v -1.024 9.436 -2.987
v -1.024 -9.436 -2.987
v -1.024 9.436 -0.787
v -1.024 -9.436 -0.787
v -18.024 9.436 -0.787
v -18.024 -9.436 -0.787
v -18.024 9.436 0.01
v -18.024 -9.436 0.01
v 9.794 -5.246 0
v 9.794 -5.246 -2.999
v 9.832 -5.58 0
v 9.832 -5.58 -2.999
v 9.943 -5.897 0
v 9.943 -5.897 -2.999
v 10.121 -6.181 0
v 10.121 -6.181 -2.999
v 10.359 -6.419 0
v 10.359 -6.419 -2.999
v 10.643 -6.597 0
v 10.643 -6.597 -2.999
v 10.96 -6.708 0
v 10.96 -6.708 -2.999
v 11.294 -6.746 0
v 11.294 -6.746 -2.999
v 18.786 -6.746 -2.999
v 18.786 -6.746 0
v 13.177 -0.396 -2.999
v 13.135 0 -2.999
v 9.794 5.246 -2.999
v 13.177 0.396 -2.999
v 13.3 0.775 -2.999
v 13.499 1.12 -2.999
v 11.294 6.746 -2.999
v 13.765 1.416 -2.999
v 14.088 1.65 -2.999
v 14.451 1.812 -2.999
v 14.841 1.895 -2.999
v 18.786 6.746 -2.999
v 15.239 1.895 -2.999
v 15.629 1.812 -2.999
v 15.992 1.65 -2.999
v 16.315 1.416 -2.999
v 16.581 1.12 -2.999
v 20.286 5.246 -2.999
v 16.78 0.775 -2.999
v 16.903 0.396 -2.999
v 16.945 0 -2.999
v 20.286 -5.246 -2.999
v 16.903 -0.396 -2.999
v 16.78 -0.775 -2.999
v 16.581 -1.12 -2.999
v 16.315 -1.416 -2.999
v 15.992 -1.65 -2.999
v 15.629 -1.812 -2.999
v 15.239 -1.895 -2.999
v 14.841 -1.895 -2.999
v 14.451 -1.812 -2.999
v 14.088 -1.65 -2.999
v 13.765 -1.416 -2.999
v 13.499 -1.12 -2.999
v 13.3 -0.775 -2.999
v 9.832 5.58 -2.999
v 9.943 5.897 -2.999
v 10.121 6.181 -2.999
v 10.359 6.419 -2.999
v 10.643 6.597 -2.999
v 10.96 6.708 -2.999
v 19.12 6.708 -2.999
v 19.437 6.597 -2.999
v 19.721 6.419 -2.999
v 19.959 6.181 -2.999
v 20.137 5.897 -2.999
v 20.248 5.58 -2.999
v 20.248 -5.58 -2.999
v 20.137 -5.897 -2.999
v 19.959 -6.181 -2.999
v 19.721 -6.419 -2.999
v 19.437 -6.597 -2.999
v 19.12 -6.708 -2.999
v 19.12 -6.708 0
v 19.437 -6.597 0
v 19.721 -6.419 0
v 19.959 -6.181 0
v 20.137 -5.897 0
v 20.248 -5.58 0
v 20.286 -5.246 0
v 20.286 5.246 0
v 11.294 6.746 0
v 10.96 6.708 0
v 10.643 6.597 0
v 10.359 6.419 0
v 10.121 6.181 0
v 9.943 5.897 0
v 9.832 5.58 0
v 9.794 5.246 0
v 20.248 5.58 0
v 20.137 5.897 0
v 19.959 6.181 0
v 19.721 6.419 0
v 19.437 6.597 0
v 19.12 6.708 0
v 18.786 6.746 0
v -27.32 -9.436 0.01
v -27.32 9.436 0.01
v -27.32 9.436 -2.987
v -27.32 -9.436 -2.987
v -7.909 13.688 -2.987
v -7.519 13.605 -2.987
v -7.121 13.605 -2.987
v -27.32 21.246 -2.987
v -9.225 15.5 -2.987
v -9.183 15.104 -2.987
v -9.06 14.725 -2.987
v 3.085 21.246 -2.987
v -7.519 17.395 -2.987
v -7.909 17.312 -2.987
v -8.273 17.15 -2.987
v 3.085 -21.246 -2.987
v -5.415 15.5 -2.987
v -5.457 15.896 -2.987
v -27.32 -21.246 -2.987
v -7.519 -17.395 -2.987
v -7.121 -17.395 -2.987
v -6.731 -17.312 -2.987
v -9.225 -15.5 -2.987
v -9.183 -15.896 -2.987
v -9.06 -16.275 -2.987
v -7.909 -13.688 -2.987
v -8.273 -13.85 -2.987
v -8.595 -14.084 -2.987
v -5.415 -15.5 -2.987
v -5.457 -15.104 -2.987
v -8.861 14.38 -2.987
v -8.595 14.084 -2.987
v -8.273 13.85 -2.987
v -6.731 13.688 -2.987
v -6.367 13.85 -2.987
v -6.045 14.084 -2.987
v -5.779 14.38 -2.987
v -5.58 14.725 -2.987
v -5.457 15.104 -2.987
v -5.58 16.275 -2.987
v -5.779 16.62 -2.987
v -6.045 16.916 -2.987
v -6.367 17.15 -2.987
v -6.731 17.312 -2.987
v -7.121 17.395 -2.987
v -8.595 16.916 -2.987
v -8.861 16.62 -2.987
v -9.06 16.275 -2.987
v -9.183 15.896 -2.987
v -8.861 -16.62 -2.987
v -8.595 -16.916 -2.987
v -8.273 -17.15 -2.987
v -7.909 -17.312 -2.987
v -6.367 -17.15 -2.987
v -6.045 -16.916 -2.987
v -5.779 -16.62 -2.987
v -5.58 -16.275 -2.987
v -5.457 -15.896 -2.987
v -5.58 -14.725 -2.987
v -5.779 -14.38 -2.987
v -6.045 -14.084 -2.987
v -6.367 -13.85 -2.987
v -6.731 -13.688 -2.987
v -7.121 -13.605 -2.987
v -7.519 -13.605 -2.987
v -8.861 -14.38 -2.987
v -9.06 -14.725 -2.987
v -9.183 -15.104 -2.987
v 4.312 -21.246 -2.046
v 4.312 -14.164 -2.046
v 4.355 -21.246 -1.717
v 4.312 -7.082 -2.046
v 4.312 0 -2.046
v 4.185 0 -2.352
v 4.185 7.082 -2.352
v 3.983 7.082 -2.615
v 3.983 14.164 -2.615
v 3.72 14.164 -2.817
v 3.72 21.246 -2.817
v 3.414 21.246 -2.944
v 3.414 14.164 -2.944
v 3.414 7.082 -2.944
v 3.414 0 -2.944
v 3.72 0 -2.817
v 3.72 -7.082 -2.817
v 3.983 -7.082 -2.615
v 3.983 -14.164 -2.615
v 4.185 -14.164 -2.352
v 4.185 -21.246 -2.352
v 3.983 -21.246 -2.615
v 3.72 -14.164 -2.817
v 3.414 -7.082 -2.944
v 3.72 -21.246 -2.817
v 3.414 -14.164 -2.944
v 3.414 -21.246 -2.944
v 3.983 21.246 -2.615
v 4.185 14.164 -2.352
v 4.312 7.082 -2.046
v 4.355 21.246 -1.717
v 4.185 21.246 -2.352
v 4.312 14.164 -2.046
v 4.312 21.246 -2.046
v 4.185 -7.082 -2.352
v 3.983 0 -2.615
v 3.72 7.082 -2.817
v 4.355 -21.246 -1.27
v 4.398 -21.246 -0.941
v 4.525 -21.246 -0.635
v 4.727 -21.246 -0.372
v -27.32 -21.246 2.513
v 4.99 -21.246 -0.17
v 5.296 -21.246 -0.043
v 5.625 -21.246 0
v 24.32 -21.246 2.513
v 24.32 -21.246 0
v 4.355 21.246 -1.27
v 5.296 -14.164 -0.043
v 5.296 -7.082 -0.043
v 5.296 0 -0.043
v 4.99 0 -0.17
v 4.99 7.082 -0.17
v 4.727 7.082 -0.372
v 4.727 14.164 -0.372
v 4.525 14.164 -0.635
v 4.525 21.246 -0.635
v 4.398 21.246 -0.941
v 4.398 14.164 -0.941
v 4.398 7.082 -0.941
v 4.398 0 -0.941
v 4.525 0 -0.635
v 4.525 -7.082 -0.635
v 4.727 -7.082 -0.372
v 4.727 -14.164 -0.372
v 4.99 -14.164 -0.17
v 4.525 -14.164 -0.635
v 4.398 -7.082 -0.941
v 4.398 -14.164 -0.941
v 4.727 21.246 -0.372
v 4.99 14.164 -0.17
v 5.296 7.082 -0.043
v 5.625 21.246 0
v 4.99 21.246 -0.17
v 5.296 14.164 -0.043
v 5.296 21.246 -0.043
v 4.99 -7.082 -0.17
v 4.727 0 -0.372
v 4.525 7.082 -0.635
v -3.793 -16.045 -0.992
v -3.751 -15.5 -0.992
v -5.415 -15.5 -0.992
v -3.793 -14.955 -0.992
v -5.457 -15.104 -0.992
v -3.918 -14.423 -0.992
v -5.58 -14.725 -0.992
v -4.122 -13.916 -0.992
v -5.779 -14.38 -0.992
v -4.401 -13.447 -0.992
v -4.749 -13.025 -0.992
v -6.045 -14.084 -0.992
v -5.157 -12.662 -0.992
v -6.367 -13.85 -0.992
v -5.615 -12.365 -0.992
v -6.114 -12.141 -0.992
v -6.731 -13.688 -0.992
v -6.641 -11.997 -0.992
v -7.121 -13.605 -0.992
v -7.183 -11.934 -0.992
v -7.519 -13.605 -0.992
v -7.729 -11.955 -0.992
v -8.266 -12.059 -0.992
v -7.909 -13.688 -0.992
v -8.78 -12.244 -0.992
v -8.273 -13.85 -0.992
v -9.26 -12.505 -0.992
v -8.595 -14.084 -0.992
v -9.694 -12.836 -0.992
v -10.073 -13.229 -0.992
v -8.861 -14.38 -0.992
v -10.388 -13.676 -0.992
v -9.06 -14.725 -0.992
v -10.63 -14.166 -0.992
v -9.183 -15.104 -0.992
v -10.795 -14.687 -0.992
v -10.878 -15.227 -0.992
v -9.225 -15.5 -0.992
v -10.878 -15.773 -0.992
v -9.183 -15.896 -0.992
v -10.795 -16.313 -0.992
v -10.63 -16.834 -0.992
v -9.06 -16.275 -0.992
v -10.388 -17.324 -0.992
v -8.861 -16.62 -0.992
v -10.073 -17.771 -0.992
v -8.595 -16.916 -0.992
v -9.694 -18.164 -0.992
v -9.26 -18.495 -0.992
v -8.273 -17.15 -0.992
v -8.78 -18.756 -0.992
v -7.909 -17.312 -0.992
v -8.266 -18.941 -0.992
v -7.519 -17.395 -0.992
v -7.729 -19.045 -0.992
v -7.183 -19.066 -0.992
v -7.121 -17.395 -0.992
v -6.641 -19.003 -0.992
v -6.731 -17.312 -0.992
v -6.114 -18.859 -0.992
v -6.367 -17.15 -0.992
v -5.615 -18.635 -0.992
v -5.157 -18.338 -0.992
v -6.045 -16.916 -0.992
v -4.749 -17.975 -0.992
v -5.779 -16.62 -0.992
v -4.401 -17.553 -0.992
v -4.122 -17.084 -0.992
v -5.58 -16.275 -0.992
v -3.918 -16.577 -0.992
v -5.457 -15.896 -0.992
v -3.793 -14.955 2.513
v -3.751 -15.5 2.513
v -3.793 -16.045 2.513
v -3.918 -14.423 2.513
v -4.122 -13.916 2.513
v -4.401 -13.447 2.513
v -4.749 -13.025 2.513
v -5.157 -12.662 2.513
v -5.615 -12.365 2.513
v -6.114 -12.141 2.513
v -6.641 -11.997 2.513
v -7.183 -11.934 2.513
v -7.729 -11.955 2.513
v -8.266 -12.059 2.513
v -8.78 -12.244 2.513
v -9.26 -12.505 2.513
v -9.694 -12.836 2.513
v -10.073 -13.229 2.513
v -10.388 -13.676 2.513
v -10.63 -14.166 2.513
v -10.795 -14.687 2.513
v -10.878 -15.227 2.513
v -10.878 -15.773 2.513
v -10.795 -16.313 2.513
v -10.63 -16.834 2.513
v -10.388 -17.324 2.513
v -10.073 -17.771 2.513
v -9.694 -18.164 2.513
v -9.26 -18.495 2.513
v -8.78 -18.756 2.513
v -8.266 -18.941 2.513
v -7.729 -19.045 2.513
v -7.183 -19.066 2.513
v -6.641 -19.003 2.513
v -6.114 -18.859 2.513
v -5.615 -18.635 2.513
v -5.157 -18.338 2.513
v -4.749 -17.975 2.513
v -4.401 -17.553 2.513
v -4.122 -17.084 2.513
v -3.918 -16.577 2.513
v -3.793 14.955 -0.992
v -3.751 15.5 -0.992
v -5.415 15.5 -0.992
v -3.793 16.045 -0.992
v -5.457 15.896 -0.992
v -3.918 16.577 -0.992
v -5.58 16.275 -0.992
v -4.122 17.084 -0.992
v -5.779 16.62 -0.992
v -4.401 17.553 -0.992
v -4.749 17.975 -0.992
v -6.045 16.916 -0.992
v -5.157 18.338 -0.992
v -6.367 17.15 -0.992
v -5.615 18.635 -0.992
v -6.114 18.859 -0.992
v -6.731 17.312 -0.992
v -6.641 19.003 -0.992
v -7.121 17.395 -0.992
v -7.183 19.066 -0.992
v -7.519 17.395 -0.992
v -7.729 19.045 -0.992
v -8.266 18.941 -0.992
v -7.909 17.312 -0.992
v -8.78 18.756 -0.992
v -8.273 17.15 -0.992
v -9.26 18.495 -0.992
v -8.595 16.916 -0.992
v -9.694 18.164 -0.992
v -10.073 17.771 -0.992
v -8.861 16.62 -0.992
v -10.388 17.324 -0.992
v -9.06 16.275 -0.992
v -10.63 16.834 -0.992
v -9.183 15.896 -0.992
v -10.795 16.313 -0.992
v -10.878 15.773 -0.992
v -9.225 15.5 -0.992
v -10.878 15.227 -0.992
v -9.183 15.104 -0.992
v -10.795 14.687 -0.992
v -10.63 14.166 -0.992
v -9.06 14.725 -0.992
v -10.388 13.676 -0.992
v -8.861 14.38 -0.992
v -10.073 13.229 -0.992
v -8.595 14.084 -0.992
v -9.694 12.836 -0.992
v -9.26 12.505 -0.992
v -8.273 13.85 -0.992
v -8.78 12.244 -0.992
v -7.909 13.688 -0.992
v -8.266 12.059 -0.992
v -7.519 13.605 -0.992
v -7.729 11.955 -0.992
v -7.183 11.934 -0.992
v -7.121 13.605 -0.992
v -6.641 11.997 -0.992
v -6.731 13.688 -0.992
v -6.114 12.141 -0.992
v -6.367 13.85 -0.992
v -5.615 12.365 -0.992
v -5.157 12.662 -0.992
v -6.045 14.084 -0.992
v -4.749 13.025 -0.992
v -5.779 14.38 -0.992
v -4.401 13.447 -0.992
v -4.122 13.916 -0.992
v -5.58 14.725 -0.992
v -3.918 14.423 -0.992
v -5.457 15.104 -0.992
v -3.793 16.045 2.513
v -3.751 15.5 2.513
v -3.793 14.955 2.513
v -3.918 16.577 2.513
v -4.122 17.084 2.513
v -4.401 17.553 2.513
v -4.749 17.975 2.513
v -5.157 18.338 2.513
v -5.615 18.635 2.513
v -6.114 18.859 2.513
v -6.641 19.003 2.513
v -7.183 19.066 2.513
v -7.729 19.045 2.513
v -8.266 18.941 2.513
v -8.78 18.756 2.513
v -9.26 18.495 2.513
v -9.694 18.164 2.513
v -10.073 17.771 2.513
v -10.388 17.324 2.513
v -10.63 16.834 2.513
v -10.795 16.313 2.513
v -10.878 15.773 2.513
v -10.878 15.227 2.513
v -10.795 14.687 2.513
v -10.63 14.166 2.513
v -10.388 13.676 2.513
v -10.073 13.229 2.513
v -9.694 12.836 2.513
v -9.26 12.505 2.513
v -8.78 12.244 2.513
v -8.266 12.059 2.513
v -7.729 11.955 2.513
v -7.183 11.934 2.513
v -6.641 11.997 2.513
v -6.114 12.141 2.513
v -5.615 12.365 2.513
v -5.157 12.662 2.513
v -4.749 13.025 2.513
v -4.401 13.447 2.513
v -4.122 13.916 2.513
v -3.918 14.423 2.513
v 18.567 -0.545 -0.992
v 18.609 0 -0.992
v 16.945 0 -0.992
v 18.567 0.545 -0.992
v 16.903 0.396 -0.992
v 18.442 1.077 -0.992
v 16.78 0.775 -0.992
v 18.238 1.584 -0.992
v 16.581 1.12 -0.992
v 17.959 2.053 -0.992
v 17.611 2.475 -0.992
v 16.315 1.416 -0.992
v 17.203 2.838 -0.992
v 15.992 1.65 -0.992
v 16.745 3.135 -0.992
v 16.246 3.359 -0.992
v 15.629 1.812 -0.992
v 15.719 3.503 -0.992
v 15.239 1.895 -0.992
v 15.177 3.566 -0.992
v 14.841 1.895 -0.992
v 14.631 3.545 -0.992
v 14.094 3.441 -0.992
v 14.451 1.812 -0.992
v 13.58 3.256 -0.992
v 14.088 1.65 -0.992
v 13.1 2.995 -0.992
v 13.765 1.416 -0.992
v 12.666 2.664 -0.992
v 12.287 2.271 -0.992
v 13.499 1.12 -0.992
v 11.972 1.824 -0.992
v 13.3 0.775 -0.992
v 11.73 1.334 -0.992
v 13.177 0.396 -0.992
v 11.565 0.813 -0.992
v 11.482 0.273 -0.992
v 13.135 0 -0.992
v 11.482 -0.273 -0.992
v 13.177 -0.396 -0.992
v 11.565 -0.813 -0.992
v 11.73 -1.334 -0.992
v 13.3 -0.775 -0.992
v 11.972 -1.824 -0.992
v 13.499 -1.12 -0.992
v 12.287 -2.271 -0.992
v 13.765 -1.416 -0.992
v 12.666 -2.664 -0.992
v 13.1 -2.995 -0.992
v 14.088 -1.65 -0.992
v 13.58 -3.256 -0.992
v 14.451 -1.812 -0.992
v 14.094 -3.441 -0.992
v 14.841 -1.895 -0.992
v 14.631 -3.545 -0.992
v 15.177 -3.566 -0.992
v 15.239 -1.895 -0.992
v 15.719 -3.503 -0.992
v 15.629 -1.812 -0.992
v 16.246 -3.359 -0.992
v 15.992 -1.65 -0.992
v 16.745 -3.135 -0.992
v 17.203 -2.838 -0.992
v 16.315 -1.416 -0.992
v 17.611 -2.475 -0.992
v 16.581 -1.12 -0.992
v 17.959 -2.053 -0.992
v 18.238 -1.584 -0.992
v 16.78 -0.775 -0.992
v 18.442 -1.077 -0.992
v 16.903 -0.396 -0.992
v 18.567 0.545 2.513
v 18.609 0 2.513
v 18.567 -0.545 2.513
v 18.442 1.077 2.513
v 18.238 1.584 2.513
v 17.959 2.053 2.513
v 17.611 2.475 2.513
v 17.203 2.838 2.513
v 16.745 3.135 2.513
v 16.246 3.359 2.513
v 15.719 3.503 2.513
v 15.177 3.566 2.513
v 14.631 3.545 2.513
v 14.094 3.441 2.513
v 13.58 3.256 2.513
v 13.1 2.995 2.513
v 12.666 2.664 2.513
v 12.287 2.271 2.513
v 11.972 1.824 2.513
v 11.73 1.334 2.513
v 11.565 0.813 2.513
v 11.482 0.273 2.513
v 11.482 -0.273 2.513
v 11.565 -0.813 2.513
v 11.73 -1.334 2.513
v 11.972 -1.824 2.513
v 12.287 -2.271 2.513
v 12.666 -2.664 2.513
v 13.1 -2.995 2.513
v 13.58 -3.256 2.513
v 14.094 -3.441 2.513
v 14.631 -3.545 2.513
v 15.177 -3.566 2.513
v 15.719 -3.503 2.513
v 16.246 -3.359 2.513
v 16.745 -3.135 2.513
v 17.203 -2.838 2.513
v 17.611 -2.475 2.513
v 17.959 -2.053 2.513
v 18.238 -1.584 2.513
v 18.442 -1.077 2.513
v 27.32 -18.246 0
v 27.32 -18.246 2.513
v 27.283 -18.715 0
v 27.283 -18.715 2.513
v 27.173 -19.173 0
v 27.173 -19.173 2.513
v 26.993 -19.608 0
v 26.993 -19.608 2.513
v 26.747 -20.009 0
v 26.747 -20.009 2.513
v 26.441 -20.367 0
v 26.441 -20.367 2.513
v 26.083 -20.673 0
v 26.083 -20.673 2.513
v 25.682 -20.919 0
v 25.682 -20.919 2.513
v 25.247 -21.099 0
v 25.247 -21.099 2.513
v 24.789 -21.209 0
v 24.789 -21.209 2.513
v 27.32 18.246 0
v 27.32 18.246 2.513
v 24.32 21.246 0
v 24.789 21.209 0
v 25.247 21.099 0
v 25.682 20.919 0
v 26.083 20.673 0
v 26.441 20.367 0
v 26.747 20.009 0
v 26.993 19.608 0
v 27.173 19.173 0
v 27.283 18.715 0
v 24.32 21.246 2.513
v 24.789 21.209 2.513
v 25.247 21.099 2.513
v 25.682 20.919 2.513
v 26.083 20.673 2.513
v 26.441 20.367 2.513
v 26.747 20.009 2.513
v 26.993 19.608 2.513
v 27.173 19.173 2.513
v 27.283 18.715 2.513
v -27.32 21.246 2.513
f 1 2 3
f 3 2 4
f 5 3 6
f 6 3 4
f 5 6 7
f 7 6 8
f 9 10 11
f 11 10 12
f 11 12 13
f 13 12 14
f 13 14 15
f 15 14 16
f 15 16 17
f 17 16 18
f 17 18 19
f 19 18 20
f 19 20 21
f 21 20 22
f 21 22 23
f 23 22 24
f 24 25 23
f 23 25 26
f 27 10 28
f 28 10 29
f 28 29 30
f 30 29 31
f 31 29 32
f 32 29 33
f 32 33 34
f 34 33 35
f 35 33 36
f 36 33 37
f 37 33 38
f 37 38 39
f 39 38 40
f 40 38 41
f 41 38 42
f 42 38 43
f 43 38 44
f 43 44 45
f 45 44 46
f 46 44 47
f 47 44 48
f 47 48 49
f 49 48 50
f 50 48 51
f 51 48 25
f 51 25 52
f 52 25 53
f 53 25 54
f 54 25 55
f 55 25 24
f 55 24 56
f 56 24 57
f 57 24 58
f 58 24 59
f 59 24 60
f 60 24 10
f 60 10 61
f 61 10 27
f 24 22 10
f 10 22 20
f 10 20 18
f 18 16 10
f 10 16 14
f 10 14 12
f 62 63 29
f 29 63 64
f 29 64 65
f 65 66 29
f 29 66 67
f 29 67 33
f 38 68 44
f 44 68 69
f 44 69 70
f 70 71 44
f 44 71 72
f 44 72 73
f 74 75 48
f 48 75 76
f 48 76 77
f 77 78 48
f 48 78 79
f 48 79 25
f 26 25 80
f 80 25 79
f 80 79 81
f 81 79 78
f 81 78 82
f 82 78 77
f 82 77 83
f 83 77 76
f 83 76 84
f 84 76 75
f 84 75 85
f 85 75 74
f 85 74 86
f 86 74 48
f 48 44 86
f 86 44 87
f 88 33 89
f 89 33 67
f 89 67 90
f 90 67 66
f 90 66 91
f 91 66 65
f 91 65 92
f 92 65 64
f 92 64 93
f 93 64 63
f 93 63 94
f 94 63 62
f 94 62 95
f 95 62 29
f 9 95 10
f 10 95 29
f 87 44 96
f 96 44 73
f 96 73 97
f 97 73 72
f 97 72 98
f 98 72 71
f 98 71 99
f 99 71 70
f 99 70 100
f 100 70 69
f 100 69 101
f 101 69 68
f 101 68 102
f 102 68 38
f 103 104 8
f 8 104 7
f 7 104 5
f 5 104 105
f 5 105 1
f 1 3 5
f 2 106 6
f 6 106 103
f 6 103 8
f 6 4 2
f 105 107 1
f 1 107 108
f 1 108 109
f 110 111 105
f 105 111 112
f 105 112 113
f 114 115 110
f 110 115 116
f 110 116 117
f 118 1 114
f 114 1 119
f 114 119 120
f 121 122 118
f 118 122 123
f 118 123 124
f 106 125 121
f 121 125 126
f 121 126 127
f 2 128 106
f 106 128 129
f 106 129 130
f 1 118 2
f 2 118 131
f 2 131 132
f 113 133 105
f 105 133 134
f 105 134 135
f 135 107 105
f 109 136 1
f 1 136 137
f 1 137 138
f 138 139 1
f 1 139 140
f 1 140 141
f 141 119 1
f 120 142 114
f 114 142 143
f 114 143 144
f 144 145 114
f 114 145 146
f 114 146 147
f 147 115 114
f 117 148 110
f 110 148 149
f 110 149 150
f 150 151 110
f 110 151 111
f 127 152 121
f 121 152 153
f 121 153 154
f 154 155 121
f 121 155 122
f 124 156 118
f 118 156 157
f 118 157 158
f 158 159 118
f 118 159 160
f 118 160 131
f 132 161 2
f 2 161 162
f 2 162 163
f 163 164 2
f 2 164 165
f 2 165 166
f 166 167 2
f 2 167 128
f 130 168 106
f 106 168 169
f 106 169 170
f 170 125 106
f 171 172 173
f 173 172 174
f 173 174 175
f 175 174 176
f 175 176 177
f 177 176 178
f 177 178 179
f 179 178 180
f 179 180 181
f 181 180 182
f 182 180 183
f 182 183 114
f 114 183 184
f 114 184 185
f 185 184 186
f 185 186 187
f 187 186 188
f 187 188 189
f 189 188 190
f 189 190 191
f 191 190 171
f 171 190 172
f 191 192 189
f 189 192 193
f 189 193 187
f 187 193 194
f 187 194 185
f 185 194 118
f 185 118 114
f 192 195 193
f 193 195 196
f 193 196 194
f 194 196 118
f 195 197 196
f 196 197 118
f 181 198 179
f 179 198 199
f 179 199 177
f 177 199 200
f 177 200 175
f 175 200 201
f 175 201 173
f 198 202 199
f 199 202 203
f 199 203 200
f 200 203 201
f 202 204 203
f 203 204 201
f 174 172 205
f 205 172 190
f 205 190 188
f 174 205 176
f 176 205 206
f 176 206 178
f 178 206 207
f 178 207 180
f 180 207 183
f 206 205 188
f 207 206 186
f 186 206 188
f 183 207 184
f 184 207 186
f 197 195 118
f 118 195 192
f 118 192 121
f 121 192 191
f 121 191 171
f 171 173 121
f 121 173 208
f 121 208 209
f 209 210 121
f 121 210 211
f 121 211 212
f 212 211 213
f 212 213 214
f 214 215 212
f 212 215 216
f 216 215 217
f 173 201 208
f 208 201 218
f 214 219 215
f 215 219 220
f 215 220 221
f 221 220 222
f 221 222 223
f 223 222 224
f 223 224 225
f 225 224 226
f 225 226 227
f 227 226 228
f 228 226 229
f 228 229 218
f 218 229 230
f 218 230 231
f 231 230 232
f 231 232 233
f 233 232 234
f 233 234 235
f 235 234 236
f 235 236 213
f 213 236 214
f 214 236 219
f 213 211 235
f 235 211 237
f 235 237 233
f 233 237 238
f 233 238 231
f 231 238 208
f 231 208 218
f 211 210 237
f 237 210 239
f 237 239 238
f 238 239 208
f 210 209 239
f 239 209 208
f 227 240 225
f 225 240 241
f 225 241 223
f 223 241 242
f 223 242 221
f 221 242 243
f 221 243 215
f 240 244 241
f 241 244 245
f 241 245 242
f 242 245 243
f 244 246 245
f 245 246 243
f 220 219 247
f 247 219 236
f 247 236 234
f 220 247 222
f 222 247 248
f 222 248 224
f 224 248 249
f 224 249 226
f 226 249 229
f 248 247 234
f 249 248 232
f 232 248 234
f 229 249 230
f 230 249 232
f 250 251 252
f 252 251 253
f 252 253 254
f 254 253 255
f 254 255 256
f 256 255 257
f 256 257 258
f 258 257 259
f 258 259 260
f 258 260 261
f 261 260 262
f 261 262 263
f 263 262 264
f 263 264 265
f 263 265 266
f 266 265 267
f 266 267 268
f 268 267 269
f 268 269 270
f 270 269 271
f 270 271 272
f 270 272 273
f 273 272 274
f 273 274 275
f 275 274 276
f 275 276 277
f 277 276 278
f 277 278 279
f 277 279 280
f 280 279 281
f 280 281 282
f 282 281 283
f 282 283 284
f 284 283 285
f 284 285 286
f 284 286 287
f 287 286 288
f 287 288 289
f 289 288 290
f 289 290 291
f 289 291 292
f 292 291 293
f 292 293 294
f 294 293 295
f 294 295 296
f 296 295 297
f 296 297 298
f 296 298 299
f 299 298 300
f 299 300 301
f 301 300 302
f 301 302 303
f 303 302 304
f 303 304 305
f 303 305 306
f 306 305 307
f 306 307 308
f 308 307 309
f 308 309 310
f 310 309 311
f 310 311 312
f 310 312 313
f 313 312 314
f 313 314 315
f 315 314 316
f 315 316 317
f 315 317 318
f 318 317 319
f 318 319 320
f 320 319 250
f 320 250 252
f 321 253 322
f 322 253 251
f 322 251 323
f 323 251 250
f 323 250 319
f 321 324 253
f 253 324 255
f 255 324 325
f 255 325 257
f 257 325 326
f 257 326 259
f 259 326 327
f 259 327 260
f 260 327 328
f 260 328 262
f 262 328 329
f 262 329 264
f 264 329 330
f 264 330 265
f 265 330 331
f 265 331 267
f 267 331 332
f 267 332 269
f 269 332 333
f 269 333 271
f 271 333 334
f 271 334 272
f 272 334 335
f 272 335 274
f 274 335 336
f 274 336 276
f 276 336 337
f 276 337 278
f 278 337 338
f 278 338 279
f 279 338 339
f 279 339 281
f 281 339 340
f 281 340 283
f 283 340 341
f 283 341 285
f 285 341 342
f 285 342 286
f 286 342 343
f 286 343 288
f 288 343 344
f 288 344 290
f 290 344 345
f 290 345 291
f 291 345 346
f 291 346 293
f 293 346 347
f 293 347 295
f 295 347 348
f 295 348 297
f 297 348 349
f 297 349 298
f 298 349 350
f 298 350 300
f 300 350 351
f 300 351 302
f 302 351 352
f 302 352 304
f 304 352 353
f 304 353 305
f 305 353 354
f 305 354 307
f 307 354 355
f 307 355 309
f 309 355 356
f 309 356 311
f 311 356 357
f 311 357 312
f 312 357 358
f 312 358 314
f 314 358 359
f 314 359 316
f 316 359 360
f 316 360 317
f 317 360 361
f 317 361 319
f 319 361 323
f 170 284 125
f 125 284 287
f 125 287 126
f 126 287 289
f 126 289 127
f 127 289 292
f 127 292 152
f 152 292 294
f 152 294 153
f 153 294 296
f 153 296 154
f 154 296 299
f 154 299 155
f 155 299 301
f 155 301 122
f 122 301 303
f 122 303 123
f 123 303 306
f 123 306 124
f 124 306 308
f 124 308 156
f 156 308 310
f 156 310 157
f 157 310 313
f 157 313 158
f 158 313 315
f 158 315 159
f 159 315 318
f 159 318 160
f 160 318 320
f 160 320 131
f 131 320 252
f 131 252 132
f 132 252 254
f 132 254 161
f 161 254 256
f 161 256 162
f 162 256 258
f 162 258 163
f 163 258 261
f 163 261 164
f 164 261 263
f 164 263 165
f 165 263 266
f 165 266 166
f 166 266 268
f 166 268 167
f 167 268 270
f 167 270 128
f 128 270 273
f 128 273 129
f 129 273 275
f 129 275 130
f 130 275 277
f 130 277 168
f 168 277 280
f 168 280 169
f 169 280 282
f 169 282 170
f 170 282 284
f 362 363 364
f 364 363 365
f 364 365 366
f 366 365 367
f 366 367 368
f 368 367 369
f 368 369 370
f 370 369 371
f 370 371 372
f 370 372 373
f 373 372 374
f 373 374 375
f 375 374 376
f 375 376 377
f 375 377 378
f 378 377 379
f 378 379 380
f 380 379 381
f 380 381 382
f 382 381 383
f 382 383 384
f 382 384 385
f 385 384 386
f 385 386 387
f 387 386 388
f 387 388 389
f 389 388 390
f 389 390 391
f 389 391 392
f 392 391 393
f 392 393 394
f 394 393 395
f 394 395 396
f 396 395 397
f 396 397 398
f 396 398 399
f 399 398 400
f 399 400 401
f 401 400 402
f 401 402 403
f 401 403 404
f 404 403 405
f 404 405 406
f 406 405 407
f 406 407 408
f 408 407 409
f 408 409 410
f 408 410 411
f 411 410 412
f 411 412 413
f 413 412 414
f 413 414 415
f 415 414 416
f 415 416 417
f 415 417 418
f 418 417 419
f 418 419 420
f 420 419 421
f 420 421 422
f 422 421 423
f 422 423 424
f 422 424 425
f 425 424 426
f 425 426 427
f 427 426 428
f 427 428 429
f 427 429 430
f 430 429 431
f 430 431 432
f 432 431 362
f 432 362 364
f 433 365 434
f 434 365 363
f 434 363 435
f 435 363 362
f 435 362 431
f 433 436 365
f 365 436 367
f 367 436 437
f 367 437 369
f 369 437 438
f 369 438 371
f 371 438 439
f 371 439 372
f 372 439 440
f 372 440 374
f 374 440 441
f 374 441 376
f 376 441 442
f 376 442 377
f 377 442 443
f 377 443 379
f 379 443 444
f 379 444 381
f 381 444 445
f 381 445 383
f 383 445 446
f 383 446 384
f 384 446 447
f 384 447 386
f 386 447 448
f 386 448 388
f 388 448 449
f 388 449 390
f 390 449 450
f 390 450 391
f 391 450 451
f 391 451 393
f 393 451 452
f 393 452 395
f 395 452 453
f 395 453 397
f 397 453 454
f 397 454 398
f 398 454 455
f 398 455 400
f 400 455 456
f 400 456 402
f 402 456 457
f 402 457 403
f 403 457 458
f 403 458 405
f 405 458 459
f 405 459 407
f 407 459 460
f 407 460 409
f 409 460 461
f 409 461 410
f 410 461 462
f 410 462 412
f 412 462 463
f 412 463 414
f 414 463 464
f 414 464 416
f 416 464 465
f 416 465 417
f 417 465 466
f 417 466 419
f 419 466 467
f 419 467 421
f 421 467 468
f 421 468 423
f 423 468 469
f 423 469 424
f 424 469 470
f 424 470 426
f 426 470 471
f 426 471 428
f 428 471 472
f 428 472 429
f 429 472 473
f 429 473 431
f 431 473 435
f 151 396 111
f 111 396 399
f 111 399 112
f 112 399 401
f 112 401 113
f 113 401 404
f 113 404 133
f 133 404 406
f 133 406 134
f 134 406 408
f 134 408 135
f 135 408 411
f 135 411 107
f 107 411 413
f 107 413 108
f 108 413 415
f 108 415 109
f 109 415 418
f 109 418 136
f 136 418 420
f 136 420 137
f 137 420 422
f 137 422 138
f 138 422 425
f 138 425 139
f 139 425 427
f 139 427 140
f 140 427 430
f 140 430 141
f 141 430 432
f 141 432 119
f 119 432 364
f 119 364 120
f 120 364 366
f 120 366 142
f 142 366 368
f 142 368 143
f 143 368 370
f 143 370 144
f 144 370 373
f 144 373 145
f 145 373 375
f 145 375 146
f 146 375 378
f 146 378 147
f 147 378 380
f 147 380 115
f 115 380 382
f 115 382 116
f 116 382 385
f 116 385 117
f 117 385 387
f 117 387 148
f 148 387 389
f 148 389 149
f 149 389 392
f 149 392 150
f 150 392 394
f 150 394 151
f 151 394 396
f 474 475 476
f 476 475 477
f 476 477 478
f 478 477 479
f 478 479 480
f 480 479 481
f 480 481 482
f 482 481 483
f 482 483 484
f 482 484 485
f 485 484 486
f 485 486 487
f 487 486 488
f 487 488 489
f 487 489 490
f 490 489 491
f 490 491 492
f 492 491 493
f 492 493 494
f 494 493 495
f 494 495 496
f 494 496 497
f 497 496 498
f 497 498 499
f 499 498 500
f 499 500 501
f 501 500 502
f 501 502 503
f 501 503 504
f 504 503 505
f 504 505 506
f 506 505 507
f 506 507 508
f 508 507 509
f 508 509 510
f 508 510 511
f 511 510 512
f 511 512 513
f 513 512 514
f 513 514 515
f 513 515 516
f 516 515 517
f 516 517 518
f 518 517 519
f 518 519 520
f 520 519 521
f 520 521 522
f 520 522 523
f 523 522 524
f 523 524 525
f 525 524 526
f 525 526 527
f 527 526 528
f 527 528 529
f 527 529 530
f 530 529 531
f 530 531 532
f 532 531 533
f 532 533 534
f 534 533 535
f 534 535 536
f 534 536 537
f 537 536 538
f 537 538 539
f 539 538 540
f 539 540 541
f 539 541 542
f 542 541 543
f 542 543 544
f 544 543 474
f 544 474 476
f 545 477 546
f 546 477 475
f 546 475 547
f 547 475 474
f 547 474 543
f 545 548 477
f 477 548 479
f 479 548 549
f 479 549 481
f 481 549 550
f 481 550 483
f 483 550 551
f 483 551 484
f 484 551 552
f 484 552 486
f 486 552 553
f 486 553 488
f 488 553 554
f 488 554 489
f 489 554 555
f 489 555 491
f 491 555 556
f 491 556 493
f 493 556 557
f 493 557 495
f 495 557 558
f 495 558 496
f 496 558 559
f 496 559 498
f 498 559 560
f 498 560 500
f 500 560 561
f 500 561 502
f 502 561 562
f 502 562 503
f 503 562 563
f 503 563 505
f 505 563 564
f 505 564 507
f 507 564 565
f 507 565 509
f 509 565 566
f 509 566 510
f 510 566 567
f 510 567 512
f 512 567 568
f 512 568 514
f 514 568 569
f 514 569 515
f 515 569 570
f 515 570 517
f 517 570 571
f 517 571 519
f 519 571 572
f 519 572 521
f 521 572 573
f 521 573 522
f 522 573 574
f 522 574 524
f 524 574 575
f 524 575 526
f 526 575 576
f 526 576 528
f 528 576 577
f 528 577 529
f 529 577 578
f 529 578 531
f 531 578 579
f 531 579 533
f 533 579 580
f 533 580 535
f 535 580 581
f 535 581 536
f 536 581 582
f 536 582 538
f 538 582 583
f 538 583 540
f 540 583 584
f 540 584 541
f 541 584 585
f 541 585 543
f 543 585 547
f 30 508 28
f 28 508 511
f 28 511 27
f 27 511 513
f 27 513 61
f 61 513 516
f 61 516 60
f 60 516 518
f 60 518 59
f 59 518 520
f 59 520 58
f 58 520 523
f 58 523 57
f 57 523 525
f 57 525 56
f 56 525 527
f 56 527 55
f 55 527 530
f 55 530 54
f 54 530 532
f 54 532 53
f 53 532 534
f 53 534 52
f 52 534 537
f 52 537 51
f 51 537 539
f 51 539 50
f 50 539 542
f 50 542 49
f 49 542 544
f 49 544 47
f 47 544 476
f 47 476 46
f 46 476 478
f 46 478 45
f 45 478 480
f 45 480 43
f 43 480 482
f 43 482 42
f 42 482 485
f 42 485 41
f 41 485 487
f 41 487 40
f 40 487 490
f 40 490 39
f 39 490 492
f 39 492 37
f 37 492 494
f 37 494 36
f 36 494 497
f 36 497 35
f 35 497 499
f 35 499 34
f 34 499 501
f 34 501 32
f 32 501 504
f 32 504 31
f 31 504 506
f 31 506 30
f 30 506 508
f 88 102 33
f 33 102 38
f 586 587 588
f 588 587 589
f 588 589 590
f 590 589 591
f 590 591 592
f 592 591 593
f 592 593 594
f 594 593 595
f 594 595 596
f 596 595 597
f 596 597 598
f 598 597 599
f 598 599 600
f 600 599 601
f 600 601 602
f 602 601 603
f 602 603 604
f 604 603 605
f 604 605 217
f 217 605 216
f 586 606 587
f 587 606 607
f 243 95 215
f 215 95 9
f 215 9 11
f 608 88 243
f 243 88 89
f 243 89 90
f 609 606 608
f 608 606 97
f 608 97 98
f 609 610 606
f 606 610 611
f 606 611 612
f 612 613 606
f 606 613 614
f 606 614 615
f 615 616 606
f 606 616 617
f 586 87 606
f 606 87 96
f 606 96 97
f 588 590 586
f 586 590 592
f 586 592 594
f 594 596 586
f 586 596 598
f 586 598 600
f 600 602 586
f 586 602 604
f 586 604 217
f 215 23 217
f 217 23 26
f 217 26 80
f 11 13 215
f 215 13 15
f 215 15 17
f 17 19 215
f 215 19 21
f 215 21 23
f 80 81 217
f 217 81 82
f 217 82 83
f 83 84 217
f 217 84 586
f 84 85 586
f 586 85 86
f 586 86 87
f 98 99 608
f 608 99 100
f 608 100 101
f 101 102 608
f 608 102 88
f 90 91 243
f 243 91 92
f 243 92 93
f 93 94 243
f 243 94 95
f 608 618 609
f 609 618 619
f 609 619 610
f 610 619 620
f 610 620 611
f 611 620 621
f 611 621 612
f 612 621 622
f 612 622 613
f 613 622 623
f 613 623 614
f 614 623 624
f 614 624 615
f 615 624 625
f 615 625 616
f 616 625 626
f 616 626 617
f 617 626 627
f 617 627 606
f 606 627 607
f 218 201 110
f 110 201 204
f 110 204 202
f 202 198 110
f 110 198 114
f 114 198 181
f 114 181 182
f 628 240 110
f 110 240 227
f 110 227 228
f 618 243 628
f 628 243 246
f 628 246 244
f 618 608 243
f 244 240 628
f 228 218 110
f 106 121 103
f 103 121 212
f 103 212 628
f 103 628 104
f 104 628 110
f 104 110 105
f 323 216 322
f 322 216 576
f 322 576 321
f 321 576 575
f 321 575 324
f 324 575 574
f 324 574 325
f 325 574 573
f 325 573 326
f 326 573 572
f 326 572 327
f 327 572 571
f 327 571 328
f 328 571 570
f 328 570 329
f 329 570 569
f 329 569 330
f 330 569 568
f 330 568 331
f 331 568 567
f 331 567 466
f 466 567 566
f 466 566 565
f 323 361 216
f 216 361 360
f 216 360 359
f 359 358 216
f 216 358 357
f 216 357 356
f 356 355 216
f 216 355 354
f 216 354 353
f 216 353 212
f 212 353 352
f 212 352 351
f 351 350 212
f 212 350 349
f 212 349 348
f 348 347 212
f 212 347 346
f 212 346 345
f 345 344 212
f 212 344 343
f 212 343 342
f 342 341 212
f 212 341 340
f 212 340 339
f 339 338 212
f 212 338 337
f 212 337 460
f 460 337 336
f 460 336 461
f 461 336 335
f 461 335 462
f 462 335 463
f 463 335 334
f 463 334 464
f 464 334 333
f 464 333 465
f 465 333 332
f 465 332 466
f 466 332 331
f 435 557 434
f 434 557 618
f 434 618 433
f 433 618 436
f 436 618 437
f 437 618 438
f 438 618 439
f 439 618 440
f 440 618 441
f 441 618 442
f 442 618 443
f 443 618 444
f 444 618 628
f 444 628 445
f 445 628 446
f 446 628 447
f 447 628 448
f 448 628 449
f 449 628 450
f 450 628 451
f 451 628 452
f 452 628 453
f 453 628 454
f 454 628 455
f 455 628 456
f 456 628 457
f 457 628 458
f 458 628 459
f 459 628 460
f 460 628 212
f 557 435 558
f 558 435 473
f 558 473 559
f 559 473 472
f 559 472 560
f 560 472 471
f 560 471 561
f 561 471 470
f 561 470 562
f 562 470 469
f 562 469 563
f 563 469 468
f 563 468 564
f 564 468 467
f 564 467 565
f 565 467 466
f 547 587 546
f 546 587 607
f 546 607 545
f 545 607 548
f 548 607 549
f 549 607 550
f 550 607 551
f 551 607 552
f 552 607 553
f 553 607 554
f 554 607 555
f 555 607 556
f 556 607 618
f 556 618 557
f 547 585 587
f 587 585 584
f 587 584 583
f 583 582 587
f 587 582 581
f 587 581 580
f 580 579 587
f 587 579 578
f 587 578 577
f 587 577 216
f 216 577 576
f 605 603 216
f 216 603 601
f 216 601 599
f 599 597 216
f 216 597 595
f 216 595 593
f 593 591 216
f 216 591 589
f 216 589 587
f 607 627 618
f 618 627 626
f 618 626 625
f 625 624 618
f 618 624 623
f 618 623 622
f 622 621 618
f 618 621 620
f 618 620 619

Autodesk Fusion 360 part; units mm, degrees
sketch "Sketch1" plane through (0, 0, 0) normal (0, 0, 1) x (1, 0, 0)
  line L0 (27.32, 21.5) -> (-27.32, 21.5) construction
  line L1 (-27.32, 21.5) -> (-27.32, -21.5) construction
  line L2 (-27.32, -21.5) -> (27.32, -21.5) construction
  line L3 (27.32, -21.5) -> (27.32, 21.5) construction
  line L4 (27.32, 21.5) -> (-27.32, -21.5) construction
  line L5 (-27.32, 21.5) -> (27.32, -21.5) construction
  line L6 (-27.32, 21.246) -> (27.32, 21.246)
  line L7 (27.32, 21.246) -> (27.32, -21.246)
  line L8 (-27.32, 21.246) -> (-27.32, -21.246)
  line L9 (-27.32, 0) -> (0, 0) construction
  line L10 (-27.32, -21.246) -> (27.32, -21.246)
  dimension "d1" = 54.64
  dimension "d2" = 43
  dimension "d19" = 0.254
extrude "Extrude1" add sketch "Sketch1" along normal blind 2.513
sketch "Sketch2" plane through (0, 0, 0) normal (0, 0, -1) x (-1, 0, 0)
  line L0 (27.32, 21.246) -> (-4.355, 21.246)
  line L1 (-4.355, 21.246) -> (-4.355, -21.246)
  line L2 (-4.355, -21.246) -> (27.32, -21.246)
  line L3 (27.32, -21.246) -> (27.32, 21.246)
  line L4 (27.32, -21.246) -> (27.32, 21.246)
  line L5 (27.32, 21.246) -> (-27.32, 21.246)
  line L6 (-27.32, 21.246) -> (-27.32, -21.246)
  line L7 (-27.32, -21.246) -> (27.32, -21.246)
  dimension "d5" = 31.675
extrude "Extrude2" add sketch "Sketch2" along normal blind 2.987 contours L0 L1 L2 L3 L4 L5 L7
fillet "Fillet1" radius 3 2 edges at (27.32, 21.246, 1.2565) (27.32, -21.246, 1.2565)
sketch "Sketch5" plane through (0, 0, 0) normal (0, 0, -1) x (-1, 0, 0)
  line L0 (-4.355, 21.246) -> (-24.32, 21.246)
  arc A0 (-24.32, 21.246) -> (-27.32, 18.246) centre (-24.32, 18.246) ccw
  line L1 (-27.32, 18.246) -> (-27.32, -18.246)
  arc A1 (-27.32, -18.246) -> (-24.32, -21.246) centre (-24.32, -18.246) ccw
  line L2 (-24.32, -21.246) -> (-4.355, -21.246)
  line L3 (-20.54, 7) -> (-9.54, 7) construction
  line L4 (-9.54, 7) -> (-9.54, -7) construction
  line L5 (-9.54, -7) -> (-20.54, -7) construction
  line L6 (-20.54, -7) -> (-20.54, 7) construction
  line L7 (-27.32, 0) -> (-20.54, 0) construction
  line L8 (-9.794, -6.746) -> (-20.286, -6.746)
  line L9 (-20.286, -6.746) -> (-20.286, 6.746)
  line L10 (-20.286, 6.746) -> (-9.794, 6.746)
  line L11 (-9.794, 6.746) -> (-9.794, -6.746)
  line L12 (-4.355, -21.246) -> (-4.355, 21.246)
  dimension "d34" = 6.78
  dimension "d35" = 11
  dimension "d38" = 0.254
  dimension "d46" = 14
extrude "Extrude4" add sketch "Sketch5" along normal blind 2.9986 contours L8 L9 L10 L11
sketch "Sketch3" plane through (0, 0, 2.513) normal (0, 0, 1) x (1, 0, 0)
  line L0 (27.32, 21.5) -> (-27.32, 21.5) construction
  line L1 (-27.32, -21.5) -> (27.32, -21.5) construction
  line L2 (-27.32, 21.246) -> (-27.32, -21.246) construction
  line L3 (27.32, 21.246) -> (27.32, -21.246) construction
  line L4 (-27.32, 0) -> (0, 0) construction
  line L5 (0, 0) -> (27.32, 0) construction
  line L6 (15.04, 0) -> (15.04, 6.746) construction
  line L7 (9.794, 6.746) -> (20.286, 6.746) construction
  point P0 (-7.32, -15.5)
  point P1 (-7.32, 15.5)
  point P2 (15.04, 0)
  dimension "d25" = 6
  dimension "d28" = 20
hole "Hole1" at (-7.32, 15.5, 2.513) at (-7.32, -15.5, 2.513) at (15.04, 0, 2.513) direction (0, 0, -1) diameter 3.81 depth 39.751 tip angle 118 counterbore diameter 7.1374 counterbore depth 3.5052
fillet "Fillet2" radius 1.27 2 edges at (4.355, 0, 0) (4.355, 0, -2.987)
sketch "Sketch4" plane through (-27.32, 0, 0) normal (-1, 0, 0) x (0, 0, 1)
  line L0 (-2.987, -21.246) -> (2.513, -21.246)
  line L1 (2.513, -21.246) -> (2.513, 21.246)
  line L2 (2.513, 21.246) -> (-2.987, 21.246)
  line L3 (-2.987, 21.246) -> (-2.987, -21.246)
  line L4 (-2.3774, -4.0546) -> (-2.3774, 4.0546) construction
  line L5 (0, 0) -> (-2.3774, 0) construction
  line L6 (-2.987, 9.4361) -> (0.0102, 9.4361)
  line L7 (0.0102, 9.4361) -> (0.0102, -9.4361)
  line L8 (0.0102, -9.4361) -> (-2.987, -9.4361)
  line L9 (-2.987, -9.4361) -> (-2.987, 9.4361)
  line L10 (0, 0) -> (0.0102, 0) construction
  dimension "d30" = 2.3876
  dimension "d31" = 18.8722
  dimension "d41" = 0.6096
extrude "Extrude3" cut sketch "Sketch4" against normal blind 9.2964 contours L3 L6 L7 L8 L9
fillet "Fillet3" radius 1.5 4 edges at (20.286, 6.746, -1.4993) (9.794, 6.746, -1.4993) (20.286, -6.746, -1.4993) (9.794, -6.746, -1.4993)
sketch "Sketch6" plane through (0, 0, -2.987) normal (0, 0, -1) x (-1, 0, 0)
  circle A0 centre (7.32, 15.5) radius 1.905
  circle A1 centre (7.32, -15.5) radius 1.905
  line L0 (27.32, -9.4361) -> (18.0236, -9.4361)
  line L1 (18.0236, -9.4361) -> (18.0236, 9.4361)
  line L2 (18.0236, 9.4361) -> (27.32, 9.4361)
  line L3 (27.32, 9.4361) -> (27.32, 21.246)
  line L4 (27.32, 21.246) -> (-3.085, 21.246)
  line L5 (-3.085, 21.246) -> (-3.085, -21.246)
  line L6 (-3.085, -21.246) -> (27.32, -21.246)
  line L7 (27.32, -21.246) -> (27.32, -9.4361)
  line L8 (18.0236, 9.4361) -> (1.0236, 9.4361)
  line L9 (1.0236, 9.4361) -> (1.0236, -9.4361)
  line L10 (1.0236, -9.4361) -> (18.0236, -9.4361)
  line L11 (18.0236, -9.4361) -> (18.0236, 9.4361)
  line L12 (0, 0) -> (1.0236, 0) construction
  dimension "d43" = 17
extrude "Extrude5" cut sketch "Sketch6" against normal blind 2.2 contours L1 L8 L9 L10 L11
equation "d6 = 1.487 mm + 1.5 mm"
equation "d36 = 0.059 in + 1.5 mm"
